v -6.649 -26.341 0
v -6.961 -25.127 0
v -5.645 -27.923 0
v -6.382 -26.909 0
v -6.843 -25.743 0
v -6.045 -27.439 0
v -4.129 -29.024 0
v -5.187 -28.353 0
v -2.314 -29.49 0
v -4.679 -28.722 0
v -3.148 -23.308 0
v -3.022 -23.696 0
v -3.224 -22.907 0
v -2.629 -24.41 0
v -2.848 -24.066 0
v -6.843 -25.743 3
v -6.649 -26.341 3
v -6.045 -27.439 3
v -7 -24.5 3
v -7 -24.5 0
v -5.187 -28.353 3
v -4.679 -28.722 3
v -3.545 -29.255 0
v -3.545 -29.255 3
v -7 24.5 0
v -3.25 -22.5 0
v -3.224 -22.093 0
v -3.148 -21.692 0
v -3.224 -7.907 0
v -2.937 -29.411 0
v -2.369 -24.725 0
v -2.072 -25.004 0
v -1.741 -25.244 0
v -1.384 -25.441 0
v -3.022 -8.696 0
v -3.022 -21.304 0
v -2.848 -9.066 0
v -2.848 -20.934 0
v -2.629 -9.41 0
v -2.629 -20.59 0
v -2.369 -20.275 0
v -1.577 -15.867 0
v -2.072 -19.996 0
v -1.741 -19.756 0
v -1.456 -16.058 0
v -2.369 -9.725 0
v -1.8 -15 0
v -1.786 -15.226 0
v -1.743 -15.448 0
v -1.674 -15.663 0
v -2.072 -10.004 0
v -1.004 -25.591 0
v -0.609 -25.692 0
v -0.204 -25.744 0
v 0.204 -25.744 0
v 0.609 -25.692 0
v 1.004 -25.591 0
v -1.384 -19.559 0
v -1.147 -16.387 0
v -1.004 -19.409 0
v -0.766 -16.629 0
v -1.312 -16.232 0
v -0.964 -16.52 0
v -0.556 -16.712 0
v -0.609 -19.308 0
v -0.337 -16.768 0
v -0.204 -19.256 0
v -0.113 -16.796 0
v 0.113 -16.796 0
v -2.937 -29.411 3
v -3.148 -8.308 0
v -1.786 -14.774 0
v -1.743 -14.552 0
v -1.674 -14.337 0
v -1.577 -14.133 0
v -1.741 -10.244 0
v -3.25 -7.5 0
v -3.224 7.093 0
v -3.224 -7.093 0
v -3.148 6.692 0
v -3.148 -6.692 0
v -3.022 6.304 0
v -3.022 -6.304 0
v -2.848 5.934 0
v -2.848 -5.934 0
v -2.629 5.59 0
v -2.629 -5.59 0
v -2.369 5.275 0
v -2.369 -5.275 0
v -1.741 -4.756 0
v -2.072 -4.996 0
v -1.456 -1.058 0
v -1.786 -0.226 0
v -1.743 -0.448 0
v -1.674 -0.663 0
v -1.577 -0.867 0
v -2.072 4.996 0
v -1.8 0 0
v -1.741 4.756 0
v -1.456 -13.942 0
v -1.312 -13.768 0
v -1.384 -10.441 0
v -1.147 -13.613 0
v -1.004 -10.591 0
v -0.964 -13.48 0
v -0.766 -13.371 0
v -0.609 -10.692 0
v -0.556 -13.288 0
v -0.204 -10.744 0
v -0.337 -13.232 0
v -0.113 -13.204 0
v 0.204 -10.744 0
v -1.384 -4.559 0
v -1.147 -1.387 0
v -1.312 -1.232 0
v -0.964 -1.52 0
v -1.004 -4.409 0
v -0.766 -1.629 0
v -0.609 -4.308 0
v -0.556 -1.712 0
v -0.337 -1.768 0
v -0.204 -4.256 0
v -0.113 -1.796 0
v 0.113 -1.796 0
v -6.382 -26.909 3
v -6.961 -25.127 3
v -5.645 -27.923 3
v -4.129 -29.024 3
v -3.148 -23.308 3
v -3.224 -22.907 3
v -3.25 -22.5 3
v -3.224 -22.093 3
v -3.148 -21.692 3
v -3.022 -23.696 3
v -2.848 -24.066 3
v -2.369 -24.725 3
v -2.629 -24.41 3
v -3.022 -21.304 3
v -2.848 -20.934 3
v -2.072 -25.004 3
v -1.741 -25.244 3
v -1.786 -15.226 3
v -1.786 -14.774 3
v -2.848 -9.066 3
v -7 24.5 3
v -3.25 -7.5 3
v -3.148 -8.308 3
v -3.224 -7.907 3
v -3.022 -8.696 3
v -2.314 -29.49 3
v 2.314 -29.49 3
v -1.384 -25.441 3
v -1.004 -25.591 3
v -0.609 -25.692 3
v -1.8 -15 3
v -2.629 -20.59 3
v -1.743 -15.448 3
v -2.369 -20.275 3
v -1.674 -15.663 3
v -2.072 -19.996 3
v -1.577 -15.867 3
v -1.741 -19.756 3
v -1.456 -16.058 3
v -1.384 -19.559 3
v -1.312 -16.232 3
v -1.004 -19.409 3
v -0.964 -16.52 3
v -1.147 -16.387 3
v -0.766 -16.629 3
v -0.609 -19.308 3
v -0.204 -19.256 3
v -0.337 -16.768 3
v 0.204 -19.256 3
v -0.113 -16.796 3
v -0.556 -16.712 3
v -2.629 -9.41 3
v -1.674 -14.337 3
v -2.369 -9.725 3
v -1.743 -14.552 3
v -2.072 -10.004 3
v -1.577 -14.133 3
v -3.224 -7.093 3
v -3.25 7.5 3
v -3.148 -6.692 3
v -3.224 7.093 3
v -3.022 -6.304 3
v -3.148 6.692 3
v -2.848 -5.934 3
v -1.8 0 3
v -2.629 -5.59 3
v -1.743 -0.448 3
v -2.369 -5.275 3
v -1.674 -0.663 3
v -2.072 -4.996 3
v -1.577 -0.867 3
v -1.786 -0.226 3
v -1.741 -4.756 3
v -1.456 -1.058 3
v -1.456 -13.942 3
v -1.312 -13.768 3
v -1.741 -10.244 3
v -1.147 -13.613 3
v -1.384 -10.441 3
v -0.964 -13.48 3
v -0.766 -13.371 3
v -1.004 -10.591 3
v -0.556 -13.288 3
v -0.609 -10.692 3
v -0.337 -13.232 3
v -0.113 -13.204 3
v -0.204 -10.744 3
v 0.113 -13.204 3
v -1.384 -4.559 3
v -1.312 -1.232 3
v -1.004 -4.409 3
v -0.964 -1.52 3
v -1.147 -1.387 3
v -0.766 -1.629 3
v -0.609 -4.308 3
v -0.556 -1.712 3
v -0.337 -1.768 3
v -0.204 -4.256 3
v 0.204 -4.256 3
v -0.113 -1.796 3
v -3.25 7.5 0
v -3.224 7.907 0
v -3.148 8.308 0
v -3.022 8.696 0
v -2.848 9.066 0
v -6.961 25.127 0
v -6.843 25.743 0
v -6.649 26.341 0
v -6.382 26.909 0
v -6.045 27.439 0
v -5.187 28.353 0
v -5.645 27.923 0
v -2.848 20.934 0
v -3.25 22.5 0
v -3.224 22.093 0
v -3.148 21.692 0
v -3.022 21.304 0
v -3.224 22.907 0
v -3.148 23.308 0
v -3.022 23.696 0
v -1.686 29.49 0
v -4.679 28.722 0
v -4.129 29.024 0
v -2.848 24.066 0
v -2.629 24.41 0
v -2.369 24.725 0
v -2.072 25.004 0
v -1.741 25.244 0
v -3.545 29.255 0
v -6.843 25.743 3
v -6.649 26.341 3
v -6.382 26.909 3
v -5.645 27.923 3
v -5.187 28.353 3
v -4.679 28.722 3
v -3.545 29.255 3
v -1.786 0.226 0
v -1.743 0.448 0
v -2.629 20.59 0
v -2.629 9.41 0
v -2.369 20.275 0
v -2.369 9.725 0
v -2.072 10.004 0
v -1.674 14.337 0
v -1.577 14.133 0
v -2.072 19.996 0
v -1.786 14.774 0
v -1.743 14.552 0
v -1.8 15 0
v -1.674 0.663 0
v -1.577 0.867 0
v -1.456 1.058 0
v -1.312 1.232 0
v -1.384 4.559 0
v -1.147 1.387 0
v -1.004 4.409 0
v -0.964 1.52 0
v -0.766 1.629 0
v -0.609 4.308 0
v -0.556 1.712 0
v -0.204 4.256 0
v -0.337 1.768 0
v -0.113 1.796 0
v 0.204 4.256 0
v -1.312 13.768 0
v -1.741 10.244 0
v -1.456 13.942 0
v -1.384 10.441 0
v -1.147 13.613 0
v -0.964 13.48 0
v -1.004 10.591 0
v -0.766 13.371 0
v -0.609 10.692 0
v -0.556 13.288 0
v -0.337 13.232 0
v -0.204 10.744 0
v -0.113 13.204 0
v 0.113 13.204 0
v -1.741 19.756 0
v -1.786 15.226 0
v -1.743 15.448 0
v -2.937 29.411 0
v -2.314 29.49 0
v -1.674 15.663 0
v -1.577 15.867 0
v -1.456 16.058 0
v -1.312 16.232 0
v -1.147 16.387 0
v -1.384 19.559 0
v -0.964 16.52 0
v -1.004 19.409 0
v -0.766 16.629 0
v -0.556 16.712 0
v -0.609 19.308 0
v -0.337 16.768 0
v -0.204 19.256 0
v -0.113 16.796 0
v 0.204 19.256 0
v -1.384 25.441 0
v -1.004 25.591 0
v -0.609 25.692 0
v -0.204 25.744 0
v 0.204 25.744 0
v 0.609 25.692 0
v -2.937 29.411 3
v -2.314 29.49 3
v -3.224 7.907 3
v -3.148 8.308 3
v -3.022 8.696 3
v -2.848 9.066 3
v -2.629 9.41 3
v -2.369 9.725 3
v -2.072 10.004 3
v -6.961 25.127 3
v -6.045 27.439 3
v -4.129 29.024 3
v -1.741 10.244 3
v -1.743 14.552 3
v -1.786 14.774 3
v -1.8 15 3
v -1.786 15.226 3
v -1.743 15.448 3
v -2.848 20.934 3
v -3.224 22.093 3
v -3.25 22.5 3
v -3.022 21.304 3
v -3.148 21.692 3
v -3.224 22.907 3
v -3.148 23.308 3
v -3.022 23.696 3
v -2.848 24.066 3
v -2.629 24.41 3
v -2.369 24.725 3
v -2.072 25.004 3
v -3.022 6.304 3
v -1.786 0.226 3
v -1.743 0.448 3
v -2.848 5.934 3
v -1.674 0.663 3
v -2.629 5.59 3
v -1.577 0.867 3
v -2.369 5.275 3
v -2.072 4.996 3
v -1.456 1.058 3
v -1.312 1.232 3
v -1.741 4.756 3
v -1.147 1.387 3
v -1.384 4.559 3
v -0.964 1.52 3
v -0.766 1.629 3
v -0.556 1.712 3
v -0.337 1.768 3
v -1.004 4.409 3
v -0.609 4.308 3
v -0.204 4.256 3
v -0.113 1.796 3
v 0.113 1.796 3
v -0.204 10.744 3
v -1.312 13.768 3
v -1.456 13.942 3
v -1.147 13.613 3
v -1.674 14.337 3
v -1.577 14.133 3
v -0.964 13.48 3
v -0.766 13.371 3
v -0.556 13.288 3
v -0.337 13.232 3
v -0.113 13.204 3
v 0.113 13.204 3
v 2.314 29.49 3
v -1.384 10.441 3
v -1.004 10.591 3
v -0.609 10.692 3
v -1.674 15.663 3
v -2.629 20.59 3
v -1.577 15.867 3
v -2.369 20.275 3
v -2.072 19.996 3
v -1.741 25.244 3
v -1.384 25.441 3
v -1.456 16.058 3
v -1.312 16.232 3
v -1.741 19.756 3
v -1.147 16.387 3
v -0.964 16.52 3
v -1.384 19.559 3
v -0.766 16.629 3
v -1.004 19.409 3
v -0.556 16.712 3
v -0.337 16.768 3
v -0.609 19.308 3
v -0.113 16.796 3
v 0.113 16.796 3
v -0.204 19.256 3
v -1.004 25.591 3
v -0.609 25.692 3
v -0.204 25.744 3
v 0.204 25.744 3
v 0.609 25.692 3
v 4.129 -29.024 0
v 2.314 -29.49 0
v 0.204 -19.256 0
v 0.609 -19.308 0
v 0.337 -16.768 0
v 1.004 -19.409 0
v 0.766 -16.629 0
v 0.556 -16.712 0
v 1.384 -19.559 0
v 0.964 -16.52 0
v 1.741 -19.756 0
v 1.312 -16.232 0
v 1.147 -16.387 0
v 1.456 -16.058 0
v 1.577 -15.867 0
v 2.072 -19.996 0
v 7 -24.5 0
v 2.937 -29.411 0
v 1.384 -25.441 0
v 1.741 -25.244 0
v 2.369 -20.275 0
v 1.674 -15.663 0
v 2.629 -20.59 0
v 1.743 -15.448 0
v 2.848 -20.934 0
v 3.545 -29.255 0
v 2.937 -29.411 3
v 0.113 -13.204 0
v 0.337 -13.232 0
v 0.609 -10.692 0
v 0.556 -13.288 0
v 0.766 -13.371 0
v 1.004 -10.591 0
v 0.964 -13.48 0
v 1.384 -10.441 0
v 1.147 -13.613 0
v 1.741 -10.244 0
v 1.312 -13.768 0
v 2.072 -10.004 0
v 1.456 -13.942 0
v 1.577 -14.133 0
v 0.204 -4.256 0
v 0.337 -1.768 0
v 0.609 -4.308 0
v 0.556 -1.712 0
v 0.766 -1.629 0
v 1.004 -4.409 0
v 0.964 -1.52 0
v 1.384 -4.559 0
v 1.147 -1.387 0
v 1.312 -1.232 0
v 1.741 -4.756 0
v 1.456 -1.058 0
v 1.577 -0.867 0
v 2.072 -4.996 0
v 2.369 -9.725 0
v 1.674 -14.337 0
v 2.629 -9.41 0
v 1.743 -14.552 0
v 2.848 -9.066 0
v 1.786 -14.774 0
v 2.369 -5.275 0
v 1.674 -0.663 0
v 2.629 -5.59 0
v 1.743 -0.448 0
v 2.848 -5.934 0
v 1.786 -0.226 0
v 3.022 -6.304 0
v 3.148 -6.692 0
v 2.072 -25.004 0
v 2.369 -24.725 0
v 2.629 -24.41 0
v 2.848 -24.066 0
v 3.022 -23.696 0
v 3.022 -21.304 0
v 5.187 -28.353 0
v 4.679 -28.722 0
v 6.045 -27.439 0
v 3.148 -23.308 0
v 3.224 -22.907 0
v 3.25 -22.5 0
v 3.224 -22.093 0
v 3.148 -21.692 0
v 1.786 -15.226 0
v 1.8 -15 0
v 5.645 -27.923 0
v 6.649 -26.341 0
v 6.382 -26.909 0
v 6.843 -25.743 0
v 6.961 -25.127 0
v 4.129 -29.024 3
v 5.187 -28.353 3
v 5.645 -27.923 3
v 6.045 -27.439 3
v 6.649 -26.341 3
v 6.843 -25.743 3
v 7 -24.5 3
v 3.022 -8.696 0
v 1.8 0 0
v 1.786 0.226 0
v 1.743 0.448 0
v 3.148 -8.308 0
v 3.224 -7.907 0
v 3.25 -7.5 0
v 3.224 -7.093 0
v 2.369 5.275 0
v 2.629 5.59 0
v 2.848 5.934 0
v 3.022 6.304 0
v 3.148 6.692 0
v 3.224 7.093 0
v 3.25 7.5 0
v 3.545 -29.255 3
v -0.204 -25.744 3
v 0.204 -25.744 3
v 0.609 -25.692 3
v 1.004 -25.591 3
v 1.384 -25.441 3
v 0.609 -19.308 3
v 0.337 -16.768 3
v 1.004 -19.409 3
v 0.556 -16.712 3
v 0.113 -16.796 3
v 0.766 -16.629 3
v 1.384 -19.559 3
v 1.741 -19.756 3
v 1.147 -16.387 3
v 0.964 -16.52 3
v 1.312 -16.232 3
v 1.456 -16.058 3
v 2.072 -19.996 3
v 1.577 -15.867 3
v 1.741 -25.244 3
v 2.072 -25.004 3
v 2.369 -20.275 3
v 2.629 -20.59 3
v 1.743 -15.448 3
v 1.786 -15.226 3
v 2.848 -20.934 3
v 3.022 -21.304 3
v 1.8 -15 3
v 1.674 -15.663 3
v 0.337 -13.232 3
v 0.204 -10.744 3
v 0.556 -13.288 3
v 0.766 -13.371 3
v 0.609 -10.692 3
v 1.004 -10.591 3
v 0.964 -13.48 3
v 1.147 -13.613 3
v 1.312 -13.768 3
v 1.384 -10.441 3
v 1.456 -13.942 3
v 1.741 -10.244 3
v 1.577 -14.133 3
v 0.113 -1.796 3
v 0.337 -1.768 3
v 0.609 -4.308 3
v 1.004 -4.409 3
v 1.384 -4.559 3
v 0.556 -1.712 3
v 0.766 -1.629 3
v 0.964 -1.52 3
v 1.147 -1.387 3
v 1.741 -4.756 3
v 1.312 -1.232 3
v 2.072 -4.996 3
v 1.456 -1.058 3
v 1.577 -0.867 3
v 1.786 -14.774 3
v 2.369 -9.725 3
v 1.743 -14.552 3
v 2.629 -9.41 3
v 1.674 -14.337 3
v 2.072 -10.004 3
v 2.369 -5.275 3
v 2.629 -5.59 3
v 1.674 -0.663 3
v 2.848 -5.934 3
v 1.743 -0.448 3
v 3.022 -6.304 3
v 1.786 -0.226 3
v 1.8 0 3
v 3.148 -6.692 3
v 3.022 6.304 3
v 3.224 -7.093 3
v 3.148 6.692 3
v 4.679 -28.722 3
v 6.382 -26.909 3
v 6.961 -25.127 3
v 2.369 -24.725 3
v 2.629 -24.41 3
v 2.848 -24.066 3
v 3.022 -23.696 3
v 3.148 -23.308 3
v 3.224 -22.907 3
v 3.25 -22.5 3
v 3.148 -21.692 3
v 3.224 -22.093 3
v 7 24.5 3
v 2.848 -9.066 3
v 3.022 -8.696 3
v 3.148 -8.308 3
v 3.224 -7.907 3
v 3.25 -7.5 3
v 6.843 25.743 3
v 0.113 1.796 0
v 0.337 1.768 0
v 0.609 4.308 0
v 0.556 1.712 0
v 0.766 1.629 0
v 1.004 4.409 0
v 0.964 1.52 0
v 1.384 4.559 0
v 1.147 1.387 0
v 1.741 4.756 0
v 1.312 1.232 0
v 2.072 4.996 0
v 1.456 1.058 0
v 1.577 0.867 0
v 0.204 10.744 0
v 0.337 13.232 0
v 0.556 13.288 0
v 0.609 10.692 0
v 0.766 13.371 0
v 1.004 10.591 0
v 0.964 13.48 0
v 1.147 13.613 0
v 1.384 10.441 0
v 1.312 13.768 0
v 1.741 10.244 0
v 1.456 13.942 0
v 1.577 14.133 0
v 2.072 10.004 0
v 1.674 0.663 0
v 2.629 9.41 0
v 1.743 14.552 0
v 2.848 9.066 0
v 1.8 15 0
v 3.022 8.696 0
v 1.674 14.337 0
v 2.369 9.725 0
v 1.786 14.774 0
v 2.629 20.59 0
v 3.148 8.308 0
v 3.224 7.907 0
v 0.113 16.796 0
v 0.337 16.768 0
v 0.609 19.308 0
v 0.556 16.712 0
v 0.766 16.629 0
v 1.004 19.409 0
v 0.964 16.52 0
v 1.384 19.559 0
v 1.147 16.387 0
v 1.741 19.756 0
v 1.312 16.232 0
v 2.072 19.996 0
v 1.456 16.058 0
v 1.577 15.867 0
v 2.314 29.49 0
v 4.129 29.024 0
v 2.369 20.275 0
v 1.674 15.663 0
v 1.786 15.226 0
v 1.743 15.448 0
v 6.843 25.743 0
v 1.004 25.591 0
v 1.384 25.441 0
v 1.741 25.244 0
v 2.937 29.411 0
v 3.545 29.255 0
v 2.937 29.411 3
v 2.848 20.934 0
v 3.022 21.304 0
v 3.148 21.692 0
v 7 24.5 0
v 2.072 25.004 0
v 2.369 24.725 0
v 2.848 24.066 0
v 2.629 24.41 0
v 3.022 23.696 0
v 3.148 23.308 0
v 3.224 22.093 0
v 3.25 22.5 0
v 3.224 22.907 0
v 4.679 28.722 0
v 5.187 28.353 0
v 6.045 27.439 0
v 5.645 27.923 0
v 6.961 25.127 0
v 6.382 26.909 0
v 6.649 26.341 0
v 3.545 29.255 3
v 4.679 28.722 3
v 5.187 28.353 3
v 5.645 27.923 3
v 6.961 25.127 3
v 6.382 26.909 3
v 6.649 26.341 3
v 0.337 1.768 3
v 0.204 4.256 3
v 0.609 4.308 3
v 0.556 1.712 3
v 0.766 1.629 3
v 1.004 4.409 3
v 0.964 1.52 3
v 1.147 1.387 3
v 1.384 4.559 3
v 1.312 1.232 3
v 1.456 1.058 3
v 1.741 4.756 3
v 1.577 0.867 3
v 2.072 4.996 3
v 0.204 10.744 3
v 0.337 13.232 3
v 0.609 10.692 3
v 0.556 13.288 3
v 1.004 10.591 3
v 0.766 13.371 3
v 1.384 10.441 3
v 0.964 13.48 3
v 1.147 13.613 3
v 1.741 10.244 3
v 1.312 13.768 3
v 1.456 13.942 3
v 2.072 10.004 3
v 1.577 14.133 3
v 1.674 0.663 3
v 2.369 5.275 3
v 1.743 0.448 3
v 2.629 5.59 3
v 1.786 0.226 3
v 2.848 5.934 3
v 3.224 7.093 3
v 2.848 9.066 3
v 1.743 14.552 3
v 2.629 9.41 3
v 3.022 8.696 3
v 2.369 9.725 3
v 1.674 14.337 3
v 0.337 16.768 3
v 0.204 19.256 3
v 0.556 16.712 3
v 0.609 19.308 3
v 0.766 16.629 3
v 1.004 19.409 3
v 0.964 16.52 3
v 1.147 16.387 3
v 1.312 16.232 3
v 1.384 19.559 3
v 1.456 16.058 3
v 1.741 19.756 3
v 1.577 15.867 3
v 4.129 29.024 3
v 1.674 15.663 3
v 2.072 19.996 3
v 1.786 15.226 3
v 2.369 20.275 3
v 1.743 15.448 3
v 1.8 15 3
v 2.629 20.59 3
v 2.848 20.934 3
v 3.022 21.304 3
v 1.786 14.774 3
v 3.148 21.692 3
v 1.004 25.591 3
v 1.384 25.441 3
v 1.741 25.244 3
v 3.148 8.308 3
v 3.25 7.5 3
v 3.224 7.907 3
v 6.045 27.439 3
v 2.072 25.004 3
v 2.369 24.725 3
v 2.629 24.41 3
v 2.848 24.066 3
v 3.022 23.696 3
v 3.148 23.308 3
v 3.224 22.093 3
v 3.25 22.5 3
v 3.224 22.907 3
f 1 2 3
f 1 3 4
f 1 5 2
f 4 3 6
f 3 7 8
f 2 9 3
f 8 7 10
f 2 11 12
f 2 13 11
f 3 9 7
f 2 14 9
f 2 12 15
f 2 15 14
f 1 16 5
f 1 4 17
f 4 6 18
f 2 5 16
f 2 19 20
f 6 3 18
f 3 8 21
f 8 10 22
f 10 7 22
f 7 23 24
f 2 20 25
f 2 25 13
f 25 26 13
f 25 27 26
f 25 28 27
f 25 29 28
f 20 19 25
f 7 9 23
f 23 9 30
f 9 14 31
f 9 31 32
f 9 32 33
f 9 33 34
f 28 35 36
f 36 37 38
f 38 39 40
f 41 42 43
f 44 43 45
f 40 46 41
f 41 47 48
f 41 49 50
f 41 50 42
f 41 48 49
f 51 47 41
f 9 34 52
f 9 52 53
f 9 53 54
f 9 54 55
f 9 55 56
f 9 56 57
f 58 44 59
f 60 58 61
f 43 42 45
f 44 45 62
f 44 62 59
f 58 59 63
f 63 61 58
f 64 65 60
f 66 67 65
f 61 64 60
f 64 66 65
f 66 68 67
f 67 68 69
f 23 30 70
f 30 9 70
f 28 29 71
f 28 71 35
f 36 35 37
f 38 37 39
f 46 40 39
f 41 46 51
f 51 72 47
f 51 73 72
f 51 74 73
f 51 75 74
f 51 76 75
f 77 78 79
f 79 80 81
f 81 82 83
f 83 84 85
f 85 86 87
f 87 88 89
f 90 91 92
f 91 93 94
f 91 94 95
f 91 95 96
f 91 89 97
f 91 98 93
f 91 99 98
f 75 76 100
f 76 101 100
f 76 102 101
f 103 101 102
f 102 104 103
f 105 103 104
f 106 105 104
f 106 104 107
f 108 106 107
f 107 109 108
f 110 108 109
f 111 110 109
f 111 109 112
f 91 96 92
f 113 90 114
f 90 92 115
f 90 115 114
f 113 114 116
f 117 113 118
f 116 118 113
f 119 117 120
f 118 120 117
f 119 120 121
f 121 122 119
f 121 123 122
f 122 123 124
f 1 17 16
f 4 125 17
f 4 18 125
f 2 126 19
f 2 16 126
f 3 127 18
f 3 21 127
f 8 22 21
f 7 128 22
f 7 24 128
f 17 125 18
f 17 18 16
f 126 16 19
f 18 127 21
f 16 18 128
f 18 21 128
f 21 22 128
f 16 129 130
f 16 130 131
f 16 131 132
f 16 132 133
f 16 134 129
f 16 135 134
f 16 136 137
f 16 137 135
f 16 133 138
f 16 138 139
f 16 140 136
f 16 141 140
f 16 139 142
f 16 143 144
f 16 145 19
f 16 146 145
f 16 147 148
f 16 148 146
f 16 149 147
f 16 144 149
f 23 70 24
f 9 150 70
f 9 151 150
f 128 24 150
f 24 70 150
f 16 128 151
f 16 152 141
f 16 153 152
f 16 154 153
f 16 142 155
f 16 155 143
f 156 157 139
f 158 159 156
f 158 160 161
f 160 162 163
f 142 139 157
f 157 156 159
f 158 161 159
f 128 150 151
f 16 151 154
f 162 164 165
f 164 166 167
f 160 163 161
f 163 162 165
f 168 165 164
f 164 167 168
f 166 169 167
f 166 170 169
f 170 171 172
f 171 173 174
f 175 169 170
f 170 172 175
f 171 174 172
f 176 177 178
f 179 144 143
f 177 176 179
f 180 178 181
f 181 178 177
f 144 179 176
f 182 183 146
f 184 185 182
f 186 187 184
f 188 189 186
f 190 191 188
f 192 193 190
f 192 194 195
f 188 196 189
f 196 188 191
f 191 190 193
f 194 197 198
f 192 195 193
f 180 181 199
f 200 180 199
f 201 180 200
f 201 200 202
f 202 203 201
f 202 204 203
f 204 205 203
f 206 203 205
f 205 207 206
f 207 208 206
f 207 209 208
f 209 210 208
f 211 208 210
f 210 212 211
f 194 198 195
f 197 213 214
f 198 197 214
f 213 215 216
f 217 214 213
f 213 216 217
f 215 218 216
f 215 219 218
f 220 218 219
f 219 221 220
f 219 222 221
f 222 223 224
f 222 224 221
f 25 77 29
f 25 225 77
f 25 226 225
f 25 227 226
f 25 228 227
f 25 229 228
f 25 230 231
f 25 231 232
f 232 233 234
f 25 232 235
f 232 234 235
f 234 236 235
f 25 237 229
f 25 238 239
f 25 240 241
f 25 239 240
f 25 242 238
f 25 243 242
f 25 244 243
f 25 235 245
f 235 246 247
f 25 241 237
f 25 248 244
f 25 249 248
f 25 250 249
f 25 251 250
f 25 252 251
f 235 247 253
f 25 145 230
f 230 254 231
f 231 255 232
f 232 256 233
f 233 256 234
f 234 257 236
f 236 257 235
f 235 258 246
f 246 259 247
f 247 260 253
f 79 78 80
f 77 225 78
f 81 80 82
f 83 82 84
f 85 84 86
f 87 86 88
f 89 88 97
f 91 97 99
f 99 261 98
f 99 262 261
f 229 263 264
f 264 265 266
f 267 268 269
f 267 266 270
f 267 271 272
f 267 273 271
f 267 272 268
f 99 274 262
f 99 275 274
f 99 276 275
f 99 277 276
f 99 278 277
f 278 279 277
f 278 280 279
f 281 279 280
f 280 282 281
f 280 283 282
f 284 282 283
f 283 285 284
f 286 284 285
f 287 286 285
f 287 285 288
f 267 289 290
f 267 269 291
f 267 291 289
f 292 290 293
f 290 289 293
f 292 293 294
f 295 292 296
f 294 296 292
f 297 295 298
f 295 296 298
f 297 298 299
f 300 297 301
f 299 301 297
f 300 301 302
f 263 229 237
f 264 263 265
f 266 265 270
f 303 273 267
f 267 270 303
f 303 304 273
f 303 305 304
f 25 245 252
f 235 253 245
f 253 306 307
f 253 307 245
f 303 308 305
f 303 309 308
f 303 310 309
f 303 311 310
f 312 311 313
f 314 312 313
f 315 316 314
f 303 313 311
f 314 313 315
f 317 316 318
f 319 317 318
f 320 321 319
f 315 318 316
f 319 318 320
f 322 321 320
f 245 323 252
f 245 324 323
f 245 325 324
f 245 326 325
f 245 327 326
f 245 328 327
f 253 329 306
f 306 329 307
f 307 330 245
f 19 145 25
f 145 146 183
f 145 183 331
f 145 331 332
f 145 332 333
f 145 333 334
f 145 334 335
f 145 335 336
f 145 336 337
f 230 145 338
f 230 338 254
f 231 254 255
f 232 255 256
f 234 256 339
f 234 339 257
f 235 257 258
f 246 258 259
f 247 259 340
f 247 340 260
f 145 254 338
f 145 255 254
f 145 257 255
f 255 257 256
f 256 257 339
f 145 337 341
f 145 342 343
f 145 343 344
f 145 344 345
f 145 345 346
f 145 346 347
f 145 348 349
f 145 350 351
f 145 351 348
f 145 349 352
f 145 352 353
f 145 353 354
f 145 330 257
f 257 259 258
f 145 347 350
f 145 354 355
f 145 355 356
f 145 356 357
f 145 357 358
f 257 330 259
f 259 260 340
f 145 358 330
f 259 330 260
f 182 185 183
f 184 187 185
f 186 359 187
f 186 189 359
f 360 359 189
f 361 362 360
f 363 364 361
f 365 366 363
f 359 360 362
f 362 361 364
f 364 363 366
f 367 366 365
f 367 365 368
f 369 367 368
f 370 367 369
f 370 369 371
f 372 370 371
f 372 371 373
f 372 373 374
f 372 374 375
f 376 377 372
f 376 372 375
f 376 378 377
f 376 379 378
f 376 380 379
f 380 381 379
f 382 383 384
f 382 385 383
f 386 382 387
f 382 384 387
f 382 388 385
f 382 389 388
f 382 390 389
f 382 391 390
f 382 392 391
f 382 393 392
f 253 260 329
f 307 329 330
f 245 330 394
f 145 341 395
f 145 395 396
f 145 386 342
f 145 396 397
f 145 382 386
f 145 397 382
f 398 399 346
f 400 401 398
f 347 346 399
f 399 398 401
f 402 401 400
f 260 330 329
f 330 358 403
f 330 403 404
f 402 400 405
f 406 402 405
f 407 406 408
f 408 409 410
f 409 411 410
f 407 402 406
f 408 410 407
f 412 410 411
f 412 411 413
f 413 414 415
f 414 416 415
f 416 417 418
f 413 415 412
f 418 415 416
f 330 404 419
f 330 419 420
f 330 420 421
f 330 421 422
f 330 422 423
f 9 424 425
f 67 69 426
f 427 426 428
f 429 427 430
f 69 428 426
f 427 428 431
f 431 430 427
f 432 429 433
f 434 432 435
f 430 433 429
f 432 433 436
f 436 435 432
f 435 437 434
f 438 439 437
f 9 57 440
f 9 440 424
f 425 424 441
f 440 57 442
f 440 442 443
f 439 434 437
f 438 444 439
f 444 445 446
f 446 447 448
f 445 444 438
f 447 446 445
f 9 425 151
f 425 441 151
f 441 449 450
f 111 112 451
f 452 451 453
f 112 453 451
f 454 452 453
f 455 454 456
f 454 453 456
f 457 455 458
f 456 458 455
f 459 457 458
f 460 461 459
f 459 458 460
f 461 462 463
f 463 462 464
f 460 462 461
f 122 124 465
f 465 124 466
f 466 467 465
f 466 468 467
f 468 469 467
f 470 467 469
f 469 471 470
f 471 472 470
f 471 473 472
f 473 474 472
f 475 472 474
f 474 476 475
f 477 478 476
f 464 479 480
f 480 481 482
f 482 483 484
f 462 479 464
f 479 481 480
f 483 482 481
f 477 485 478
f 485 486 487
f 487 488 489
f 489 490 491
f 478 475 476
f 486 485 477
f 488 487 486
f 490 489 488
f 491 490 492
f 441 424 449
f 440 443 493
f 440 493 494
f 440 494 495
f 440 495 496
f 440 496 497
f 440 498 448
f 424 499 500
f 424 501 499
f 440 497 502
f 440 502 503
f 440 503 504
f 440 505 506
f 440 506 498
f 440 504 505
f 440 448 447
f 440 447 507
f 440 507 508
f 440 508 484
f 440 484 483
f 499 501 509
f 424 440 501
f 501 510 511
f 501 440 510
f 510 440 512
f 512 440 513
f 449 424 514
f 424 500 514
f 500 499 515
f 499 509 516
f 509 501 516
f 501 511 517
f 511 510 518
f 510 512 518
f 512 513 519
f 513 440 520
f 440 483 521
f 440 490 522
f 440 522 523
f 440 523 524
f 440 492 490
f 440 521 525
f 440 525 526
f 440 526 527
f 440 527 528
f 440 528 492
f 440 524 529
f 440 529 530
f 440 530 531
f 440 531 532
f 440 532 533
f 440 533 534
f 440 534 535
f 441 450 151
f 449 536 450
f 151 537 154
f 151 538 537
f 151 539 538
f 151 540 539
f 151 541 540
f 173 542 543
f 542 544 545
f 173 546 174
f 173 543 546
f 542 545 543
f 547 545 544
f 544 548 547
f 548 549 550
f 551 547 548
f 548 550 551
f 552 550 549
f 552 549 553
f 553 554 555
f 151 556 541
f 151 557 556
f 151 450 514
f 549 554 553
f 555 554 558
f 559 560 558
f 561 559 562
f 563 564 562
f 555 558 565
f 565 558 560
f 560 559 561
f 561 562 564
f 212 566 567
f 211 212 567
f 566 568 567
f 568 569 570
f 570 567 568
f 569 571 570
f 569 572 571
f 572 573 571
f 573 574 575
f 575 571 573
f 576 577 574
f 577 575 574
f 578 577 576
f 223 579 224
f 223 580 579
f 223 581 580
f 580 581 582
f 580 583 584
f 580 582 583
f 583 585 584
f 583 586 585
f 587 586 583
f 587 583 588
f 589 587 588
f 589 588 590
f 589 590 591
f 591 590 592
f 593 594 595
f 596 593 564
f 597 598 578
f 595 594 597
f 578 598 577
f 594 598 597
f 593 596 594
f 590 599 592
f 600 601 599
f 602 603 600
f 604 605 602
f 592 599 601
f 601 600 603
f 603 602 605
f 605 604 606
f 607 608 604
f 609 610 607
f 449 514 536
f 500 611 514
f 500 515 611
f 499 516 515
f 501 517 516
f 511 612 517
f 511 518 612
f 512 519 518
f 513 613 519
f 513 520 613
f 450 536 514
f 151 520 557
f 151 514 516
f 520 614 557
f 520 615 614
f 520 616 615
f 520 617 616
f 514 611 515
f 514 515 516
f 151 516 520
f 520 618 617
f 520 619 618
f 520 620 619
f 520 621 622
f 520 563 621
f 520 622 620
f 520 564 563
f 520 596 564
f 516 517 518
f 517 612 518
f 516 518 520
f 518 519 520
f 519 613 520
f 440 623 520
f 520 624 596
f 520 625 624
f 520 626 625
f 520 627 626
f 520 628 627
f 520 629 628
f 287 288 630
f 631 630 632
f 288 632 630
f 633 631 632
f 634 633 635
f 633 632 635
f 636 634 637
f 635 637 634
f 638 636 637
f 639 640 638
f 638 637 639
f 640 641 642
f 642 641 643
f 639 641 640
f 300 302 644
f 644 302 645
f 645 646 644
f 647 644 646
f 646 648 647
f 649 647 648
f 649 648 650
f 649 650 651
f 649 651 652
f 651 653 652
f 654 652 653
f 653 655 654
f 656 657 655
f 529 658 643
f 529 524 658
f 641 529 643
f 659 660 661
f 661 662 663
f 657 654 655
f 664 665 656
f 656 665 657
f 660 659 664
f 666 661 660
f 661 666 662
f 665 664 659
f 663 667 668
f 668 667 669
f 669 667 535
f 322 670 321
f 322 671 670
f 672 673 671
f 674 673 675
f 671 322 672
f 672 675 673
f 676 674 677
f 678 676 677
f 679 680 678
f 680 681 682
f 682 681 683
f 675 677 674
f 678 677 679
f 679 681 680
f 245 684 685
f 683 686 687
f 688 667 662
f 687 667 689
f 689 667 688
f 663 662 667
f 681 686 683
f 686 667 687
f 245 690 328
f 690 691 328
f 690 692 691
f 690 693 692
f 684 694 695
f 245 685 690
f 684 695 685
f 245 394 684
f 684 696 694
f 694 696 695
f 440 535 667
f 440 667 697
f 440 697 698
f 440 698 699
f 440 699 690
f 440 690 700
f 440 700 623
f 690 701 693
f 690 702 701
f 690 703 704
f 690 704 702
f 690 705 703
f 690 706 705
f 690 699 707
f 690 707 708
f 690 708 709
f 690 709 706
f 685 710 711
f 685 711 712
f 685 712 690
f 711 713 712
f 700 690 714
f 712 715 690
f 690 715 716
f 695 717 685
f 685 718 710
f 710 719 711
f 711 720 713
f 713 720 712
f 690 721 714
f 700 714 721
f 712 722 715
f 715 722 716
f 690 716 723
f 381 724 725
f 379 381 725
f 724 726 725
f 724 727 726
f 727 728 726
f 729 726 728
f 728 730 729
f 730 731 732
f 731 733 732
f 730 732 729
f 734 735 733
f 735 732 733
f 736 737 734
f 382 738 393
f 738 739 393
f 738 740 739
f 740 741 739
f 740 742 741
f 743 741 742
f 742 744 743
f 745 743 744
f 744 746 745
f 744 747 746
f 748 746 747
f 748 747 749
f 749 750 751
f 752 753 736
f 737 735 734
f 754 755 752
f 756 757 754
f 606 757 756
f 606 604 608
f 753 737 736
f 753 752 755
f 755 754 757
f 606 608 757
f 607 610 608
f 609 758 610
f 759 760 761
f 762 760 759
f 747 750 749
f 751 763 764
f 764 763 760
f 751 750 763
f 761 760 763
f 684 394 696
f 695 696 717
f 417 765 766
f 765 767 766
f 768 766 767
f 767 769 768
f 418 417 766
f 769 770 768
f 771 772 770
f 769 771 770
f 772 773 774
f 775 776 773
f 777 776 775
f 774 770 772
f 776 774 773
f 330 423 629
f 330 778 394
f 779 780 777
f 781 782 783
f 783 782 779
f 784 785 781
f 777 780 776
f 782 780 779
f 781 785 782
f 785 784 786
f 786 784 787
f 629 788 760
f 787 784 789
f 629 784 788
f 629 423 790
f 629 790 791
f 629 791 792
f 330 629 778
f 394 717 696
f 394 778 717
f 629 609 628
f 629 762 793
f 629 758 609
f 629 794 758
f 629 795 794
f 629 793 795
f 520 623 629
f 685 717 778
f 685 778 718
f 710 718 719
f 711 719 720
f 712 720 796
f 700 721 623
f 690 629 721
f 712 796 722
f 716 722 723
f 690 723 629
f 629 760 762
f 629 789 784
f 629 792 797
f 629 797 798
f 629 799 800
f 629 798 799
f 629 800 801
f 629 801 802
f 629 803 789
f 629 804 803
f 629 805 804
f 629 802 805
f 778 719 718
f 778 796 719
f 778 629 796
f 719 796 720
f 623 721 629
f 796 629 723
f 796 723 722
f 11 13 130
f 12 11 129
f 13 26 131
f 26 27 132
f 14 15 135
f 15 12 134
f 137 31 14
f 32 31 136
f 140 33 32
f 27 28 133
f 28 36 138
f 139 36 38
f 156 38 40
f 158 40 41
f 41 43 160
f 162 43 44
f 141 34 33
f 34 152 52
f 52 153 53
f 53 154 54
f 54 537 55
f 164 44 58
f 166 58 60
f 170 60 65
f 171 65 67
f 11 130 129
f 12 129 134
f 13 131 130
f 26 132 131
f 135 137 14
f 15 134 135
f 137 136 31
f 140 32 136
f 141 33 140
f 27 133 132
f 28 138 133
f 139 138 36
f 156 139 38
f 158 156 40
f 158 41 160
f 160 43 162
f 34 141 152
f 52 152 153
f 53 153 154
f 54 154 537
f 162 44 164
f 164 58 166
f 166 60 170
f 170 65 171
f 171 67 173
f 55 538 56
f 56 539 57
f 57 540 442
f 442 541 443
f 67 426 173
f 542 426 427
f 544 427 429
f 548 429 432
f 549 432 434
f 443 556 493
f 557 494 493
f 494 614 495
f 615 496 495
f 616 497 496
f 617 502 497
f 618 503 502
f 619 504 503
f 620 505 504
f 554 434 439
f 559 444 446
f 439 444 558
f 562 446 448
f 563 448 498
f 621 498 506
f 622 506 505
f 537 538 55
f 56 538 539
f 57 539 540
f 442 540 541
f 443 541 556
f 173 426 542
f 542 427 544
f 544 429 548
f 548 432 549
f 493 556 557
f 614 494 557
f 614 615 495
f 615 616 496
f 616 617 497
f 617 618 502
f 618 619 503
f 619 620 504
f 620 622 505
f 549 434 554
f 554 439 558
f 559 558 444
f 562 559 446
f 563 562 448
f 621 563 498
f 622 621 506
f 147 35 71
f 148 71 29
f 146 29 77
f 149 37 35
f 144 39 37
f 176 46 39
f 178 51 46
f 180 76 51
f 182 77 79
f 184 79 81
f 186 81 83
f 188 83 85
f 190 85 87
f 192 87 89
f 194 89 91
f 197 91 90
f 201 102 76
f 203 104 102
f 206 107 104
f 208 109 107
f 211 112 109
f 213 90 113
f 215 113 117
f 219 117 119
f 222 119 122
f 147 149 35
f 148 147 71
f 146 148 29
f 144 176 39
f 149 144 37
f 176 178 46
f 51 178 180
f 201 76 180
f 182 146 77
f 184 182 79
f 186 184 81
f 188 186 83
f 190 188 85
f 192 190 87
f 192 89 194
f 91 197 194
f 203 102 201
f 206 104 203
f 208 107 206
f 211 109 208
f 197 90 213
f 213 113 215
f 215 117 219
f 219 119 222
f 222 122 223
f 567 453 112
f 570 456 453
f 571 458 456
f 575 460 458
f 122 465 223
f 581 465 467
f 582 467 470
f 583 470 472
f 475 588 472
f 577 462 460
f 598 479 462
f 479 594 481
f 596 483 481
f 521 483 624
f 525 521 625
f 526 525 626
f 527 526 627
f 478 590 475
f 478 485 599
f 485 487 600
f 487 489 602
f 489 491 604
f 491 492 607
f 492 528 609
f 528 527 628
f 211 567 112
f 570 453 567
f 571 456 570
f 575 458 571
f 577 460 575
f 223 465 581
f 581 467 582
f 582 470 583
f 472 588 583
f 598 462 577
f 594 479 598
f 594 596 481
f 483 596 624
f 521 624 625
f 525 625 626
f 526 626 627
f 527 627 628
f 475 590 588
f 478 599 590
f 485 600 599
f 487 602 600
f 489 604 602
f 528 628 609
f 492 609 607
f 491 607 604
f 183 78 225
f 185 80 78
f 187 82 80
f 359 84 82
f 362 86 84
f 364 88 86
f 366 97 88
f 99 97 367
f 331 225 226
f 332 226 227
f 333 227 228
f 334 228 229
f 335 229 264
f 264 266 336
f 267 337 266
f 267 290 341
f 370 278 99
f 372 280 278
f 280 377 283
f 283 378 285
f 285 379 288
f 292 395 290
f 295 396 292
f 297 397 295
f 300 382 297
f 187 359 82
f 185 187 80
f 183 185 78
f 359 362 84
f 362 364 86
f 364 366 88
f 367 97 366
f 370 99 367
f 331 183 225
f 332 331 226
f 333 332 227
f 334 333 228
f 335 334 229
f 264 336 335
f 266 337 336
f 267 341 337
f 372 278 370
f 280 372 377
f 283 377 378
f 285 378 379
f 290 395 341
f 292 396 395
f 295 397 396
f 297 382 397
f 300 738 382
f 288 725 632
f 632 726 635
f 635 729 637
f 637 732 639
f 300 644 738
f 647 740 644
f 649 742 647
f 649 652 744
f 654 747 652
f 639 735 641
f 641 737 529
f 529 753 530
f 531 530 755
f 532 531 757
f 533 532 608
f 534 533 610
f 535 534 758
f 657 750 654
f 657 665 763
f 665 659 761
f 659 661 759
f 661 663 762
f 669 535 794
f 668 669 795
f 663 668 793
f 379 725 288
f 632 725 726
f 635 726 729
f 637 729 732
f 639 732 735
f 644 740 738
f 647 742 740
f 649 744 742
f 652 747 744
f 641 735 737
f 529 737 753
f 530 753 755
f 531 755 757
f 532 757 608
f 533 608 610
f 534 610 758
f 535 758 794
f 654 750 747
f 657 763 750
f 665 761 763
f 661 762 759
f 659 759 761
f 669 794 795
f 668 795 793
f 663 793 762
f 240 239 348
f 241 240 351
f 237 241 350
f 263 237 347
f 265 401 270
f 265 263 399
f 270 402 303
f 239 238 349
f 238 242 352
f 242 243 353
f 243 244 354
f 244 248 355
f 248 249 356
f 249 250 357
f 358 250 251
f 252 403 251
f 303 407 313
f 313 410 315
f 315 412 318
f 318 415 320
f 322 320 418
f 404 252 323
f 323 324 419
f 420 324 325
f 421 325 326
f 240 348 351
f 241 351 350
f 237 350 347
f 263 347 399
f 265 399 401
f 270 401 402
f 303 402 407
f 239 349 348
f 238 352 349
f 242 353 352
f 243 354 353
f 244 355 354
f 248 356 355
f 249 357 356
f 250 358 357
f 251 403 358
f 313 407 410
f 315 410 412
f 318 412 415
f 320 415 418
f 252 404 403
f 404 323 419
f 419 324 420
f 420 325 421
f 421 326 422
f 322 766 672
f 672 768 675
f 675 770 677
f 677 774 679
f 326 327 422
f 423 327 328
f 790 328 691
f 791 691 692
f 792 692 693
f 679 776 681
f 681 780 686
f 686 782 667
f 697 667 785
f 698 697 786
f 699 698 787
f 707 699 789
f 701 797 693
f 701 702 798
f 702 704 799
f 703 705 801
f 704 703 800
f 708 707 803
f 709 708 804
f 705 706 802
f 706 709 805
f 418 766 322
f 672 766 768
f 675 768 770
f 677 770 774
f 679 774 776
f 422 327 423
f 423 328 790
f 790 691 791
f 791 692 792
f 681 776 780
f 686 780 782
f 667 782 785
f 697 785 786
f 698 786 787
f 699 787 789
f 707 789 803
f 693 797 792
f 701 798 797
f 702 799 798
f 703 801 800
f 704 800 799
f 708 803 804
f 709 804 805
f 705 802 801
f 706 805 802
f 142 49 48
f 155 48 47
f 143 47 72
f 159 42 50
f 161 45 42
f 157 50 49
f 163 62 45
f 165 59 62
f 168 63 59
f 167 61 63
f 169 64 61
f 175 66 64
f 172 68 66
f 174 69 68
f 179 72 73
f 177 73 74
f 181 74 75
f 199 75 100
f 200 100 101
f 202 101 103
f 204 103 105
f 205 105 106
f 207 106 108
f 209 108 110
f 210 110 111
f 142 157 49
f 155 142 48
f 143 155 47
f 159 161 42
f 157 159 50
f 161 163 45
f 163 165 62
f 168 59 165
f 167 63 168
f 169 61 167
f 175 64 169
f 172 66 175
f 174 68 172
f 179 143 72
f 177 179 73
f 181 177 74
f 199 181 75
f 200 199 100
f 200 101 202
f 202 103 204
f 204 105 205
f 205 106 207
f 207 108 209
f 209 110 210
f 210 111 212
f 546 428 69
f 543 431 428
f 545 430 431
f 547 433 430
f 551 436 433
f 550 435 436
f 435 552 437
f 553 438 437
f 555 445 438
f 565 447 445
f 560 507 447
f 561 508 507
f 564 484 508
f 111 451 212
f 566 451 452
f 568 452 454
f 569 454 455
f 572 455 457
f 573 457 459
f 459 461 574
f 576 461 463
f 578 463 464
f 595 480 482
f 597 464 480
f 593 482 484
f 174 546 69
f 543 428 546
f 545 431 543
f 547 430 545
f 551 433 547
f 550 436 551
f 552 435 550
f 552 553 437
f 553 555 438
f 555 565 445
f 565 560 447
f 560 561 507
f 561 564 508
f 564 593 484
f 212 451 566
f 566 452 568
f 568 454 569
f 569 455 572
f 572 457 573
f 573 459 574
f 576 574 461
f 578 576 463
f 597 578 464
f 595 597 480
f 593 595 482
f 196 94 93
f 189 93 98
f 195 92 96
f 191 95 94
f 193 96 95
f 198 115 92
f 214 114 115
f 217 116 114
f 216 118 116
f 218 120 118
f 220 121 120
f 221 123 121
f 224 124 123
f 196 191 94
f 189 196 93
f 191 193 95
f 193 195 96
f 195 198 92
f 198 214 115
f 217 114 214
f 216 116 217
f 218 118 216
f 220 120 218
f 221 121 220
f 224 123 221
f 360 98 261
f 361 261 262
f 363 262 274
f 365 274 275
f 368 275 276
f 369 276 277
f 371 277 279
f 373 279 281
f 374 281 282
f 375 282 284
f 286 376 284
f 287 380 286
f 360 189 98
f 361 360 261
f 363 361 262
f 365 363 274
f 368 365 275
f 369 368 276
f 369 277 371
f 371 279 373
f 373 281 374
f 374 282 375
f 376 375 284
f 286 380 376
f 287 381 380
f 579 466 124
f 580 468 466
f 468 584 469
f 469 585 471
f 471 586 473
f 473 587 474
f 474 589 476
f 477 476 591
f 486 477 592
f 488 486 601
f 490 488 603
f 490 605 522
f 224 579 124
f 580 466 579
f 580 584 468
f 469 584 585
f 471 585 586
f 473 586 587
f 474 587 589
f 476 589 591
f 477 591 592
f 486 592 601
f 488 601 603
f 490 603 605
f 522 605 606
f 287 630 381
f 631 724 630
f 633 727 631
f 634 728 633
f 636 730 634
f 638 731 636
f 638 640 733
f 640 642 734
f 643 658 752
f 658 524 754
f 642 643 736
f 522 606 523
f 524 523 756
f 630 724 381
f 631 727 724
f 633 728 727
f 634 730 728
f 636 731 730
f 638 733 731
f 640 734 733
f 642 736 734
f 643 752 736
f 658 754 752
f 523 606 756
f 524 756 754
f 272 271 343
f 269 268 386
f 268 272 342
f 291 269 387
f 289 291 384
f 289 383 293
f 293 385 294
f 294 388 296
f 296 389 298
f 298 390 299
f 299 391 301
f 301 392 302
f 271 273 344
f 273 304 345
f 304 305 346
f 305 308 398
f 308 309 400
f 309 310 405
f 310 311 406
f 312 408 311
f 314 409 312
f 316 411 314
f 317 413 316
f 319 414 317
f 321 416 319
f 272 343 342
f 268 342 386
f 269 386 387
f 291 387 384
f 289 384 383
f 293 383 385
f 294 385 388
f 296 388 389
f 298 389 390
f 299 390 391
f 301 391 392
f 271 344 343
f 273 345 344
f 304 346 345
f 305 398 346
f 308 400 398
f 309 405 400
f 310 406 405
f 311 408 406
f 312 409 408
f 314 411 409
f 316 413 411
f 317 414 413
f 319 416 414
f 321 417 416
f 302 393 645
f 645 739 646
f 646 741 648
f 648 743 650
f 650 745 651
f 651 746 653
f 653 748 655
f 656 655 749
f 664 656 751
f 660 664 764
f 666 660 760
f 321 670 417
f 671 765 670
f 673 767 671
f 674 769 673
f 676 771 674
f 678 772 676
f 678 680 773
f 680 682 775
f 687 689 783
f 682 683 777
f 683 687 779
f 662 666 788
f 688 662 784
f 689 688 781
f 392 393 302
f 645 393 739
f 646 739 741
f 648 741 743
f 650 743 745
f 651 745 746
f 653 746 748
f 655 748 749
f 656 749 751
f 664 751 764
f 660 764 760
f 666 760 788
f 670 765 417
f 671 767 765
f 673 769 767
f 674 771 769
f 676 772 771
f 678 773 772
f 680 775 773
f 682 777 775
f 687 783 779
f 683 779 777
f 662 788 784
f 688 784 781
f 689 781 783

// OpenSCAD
$fn = 50;

difference() {
	union() {
		hull() {
			translate(v = [-2.0, 24.5, 0]) {
				cylinder(h = 3, r = 5);
			}
			translate(v = [2.0, 24.5, 0]) {
				cylinder(h = 3, r = 5);
			}
			translate(v = [-2.0, -24.5, 0]) {
				cylinder(h = 3, r = 5);
			}
			translate(v = [2.0, -24.5, 0]) {
				cylinder(h = 3, r = 5);
			}
		}
	}
	union() {
		translate(v = [0.0, -22.5, 0]) {
			translate(v = [0, 0, -100]) {
				cylinder(h = 200, r = 3.25);
			}
		}
		translate(v = [0.0, -7.5, 0]) {
			translate(v = [0, 0, -100]) {
				cylinder(h = 200, r = 3.25);
			}
		}
		translate(v = [0.0, 7.5, 0]) {
			translate(v = [0, 0, -100]) {
				cylinder(h = 200, r = 3.25);
			}
		}
		translate(v = [0.0, 22.5, 0]) {
			translate(v = [0, 0, -100]) {
				cylinder(h = 200, r = 3.25);
			}
		}
		translate(v = [0.0, -22.5, 0]) {
			translate(v = [0, 0, -100]) {
				cylinder(h = 200, r = 1.8);
			}
		}
		translate(v = [0.0, -15.0, 0]) {
			translate(v = [0, 0, -100]) {
				cylinder(h = 200, r = 1.8);
			}
		}
		translate(v = [0.0, -7.5, 0]) {
			translate(v = [0, 0, -100]) {
				cylinder(h = 200, r = 1.8);
			}
		}
		translate(v = [0, 0, -100]) {
			cylinder(h = 200, r = 1.8);
		}
		translate(v = [0.0, 7.5, 0]) {
			translate(v = [0, 0, -100]) {
				cylinder(h = 200, r = 1.8);
			}
		}
		translate(v = [0.0, 15.0, 0]) {
			translate(v = [0, 0, -100]) {
				cylinder(h = 200, r = 1.8);
			}
		}
		translate(v = [0.0, 22.5, 0]) {
			translate(v = [0, 0, -100]) {
				cylinder(h = 200, r = 1.8);
			}
		}
	}
}
